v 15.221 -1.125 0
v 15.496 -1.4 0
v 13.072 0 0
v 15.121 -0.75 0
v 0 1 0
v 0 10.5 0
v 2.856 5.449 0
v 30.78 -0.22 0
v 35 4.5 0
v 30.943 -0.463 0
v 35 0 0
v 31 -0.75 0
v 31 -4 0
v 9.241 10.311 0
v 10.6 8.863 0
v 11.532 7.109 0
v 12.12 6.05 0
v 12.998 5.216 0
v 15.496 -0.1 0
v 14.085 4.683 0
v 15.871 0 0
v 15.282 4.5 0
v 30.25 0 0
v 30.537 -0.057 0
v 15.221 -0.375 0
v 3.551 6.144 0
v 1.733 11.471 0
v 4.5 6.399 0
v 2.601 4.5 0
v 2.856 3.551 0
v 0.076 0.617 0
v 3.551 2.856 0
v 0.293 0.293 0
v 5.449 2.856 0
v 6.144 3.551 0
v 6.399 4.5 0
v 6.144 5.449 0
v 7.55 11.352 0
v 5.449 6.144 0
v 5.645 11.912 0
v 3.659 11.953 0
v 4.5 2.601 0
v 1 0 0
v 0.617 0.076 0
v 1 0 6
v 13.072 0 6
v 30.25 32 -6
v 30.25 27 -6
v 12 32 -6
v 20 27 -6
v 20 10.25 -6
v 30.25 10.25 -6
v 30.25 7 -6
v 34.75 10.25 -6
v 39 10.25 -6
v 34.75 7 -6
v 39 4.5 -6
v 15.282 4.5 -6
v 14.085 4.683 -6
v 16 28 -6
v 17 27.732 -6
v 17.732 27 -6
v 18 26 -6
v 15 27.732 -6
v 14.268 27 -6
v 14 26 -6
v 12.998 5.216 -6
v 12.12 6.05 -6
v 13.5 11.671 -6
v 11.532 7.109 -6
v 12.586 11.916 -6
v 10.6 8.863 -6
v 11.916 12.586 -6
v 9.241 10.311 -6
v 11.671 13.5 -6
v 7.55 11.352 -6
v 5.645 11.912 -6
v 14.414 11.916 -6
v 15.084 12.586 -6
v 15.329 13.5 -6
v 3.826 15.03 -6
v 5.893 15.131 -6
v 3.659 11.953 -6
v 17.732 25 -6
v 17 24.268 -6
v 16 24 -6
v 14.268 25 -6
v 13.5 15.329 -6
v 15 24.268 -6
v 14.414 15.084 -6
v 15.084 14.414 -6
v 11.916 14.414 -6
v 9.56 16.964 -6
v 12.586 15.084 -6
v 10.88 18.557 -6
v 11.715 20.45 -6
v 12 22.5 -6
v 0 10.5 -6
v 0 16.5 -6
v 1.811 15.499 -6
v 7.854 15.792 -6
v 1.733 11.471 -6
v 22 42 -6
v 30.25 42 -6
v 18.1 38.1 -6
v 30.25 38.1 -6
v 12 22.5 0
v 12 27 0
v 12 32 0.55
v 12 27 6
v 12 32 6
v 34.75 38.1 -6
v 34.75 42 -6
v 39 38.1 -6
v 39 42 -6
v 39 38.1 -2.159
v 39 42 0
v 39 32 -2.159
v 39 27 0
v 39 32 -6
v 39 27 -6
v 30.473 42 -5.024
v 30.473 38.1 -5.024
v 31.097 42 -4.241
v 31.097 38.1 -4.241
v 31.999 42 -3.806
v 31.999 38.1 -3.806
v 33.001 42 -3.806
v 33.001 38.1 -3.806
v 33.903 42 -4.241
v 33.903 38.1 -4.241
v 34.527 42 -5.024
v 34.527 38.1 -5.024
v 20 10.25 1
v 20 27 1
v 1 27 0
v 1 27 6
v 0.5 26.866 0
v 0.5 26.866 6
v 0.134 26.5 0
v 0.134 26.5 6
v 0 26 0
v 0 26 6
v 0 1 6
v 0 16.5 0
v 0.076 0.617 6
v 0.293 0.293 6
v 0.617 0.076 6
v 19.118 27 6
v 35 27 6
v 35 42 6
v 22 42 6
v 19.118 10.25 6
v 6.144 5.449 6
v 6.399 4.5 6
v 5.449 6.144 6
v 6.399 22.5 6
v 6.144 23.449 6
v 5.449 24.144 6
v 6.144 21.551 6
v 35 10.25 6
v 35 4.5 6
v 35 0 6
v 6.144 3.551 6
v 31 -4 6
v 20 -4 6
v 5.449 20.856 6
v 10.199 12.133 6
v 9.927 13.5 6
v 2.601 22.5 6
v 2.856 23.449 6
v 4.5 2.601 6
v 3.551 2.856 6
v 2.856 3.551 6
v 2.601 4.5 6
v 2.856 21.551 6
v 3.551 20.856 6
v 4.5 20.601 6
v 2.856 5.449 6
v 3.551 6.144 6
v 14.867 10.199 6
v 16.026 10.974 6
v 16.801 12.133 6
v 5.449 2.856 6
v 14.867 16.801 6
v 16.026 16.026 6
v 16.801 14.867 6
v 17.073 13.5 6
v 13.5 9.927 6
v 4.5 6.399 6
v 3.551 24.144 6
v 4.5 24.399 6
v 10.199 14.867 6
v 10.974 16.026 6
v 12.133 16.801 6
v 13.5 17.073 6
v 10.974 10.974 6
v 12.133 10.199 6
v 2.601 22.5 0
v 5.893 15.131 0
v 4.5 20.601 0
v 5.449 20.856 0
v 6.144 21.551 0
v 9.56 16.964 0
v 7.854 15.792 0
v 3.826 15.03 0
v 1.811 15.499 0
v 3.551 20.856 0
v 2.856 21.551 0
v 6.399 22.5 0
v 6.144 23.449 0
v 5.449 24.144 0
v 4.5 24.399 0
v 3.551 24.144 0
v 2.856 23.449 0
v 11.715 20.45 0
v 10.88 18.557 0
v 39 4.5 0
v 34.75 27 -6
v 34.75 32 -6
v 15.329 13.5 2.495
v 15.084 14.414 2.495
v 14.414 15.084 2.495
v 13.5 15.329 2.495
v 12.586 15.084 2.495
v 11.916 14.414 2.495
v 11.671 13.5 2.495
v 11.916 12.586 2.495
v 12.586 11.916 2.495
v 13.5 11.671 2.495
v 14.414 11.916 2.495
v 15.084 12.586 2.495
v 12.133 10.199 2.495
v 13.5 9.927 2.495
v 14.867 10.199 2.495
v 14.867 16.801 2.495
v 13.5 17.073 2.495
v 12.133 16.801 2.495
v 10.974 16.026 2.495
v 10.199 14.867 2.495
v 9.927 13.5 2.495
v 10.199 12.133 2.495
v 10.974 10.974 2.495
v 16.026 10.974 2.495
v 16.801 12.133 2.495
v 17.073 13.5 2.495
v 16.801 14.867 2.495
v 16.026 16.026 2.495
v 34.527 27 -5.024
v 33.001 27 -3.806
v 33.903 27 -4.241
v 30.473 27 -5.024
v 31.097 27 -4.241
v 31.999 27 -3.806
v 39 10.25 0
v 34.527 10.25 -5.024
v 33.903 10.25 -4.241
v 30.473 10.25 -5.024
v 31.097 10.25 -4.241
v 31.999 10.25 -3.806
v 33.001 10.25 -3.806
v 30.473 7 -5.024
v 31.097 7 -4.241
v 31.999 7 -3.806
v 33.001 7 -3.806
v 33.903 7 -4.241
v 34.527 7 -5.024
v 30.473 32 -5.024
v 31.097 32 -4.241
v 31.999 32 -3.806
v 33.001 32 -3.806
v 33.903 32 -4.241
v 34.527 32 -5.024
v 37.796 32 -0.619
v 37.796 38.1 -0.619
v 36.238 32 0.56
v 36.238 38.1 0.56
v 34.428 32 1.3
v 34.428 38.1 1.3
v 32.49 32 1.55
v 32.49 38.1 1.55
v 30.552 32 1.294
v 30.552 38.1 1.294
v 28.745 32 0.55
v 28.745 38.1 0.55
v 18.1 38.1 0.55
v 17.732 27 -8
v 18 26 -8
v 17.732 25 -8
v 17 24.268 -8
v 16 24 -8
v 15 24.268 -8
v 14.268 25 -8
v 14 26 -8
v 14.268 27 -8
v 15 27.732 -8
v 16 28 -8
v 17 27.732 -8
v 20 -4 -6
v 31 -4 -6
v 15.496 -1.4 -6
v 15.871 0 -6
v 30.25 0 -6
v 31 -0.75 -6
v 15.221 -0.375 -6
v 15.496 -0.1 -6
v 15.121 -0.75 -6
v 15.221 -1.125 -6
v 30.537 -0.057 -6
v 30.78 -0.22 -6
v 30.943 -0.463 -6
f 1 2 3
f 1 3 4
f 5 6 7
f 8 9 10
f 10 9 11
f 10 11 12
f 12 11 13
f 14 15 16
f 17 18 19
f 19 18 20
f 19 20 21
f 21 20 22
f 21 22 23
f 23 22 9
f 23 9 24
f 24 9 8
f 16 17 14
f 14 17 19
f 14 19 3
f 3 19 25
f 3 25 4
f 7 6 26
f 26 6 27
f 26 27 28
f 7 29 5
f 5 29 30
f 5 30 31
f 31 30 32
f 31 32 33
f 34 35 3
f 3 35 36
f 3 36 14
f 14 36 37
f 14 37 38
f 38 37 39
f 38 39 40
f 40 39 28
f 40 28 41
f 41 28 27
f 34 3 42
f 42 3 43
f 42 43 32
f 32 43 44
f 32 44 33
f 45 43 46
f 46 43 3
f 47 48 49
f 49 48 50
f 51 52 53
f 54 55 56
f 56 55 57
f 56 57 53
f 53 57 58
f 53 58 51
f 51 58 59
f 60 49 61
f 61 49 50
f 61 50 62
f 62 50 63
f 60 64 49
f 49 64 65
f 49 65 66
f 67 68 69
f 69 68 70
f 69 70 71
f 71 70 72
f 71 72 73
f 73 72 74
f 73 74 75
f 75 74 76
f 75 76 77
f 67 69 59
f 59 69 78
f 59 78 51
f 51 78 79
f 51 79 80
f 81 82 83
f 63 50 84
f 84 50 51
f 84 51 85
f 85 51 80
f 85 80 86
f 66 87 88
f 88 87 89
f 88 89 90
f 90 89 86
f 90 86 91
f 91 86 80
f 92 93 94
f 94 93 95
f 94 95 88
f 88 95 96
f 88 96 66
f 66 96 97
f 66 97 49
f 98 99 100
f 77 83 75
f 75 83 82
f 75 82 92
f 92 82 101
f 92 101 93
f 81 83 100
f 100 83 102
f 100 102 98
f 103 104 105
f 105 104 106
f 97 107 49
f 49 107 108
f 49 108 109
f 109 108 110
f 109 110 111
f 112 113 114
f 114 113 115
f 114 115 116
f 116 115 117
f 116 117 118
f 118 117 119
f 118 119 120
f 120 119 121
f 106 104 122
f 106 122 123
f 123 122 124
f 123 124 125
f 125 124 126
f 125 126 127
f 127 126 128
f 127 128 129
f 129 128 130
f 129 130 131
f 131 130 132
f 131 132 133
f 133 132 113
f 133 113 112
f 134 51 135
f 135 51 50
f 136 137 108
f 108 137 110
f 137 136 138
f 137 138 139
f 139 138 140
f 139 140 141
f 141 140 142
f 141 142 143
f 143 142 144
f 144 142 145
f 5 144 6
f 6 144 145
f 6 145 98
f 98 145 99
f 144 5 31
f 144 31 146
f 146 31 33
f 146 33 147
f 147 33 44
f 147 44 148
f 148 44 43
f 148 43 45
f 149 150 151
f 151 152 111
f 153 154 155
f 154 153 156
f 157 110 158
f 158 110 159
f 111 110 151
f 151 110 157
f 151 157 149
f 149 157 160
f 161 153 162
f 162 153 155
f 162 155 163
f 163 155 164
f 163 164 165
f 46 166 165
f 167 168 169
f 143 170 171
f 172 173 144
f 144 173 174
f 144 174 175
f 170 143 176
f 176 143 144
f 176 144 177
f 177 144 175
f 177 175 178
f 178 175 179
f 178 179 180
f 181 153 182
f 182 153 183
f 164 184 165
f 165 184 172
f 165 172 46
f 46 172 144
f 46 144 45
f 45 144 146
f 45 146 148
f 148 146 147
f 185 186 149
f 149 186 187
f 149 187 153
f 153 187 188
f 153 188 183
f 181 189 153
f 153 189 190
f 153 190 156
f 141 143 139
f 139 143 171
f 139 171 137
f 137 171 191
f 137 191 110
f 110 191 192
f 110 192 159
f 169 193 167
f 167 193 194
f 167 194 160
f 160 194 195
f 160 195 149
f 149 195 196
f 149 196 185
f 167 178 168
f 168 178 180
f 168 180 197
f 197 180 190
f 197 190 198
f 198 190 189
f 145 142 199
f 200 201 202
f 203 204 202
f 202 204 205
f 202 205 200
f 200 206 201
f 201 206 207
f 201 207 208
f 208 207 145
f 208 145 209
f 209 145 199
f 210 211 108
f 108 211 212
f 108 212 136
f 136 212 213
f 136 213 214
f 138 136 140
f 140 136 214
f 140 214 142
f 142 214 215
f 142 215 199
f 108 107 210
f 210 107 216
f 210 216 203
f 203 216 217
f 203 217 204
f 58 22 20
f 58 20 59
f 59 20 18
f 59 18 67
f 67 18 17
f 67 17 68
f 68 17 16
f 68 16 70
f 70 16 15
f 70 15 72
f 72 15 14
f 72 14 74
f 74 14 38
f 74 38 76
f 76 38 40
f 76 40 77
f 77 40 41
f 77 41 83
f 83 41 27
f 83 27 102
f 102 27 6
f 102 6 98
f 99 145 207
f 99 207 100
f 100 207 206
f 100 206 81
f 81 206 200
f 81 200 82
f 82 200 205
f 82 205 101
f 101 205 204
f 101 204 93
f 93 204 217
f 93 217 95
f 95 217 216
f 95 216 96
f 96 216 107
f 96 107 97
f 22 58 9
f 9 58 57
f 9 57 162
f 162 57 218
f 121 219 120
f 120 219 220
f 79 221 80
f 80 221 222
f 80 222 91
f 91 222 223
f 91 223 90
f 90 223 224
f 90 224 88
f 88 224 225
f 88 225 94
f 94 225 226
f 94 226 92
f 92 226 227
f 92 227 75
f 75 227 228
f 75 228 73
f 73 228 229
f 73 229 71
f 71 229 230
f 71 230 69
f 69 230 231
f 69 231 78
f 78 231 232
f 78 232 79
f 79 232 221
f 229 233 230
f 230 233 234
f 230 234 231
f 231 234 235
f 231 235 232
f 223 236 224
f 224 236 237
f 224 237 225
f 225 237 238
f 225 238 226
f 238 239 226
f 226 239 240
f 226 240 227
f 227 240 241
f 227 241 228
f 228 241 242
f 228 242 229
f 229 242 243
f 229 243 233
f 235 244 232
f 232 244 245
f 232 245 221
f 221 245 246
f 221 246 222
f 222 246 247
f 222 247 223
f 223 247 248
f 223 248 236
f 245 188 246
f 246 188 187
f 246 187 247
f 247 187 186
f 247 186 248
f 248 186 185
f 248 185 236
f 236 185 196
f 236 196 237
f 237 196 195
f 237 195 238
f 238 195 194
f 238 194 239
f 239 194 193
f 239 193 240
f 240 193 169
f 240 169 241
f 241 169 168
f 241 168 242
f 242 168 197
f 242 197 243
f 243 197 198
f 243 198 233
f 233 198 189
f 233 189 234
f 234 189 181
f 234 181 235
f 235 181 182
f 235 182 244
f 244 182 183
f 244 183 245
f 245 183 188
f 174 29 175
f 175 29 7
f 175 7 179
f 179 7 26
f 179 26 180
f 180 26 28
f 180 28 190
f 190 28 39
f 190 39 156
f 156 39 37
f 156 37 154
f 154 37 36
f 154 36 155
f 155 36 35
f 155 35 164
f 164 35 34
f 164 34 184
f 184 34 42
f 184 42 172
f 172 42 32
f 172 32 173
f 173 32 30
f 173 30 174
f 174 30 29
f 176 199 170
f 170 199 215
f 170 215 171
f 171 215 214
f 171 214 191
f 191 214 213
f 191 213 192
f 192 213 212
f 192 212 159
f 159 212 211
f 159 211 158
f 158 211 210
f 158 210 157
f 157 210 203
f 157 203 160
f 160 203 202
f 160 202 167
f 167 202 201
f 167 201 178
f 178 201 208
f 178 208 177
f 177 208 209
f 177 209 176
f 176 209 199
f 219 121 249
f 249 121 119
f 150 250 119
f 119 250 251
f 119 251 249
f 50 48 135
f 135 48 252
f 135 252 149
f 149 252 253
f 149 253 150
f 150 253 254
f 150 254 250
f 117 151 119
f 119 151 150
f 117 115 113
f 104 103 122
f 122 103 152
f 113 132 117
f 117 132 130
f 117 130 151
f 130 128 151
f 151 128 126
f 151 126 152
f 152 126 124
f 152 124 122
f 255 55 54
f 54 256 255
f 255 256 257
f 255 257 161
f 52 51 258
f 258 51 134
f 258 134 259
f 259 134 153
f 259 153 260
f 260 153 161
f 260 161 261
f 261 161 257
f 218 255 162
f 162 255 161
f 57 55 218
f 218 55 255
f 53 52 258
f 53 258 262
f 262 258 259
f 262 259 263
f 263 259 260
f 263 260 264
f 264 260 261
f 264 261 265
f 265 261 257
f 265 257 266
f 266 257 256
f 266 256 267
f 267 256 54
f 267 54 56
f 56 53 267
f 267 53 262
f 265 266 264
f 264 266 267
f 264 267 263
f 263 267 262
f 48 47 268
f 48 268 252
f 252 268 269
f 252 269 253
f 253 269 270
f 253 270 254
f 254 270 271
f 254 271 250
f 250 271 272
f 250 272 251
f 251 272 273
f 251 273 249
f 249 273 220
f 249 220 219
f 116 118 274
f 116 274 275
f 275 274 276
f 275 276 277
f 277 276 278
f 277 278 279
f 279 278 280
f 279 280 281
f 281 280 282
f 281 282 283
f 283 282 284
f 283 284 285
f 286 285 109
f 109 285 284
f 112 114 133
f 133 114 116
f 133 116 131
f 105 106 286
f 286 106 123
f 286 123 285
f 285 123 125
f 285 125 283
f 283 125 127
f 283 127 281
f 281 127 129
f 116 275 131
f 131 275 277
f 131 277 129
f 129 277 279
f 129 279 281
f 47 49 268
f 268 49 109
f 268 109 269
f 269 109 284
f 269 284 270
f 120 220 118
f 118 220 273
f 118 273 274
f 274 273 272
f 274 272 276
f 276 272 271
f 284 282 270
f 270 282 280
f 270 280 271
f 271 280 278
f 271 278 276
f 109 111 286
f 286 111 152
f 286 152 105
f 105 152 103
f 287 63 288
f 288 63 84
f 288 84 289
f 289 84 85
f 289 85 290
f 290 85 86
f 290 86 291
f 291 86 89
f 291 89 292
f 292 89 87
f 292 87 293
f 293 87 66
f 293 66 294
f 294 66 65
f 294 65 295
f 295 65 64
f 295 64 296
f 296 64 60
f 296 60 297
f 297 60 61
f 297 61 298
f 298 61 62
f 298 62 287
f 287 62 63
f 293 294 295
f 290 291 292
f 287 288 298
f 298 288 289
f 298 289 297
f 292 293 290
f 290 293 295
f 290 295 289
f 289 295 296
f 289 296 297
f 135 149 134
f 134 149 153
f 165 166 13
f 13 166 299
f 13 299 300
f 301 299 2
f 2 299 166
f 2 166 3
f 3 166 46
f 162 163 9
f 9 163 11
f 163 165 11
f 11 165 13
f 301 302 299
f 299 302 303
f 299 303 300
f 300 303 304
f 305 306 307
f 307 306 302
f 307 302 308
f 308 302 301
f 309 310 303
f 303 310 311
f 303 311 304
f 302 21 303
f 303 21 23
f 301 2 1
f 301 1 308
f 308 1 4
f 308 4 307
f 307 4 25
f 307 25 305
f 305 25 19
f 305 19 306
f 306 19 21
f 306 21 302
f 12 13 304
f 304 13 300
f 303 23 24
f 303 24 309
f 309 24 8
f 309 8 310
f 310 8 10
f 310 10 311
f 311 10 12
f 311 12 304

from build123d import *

# Parameters (mm, degrees)
BOSS_EXTRUDE1_DEPTH                            = 6
BOSS_EXTRUDE3_DEPTH                            = 6
CBORE_FOR_6_SOCKET_HEAD_CAP_SCREW1_D           = 3.6576
CBORE_FOR_6_SOCKET_HEAD_CAP_SCREW1_CBORE_D     = 7.14502
CBORE_FOR_6_SOCKET_HEAD_CAP_SCREW1_CBORE_DEPTH = 3.5052
F_6_CLEARANCE_HOLE1_D                          = 3.7973
F_6_CLEARANCE_HOLE1_DEPTH                      = 17.47
F_6_CLEARANCE_HOLE1_TIP                        = 1.140824014
BOSS_EXTRUDE5_DEPTH                            = 15
BOSS_EXTRUDE6_DEPTH                            = 5.75
CUT_EXTRUDE1_START                             = -20
SKETCH11_5_R                                   = 2.25
CUT_EXTRUDE1_DEPTH                             = 35
CUT_EXTRUDE2_DEPTH                             = 6.1
CHAMFER2_SIZE                                  = 10
SKETCH26_R                                     = 2
BOSS_EXTRUDE10_DEPTH                           = 2
CHAMFER3_SIZE                                  = 5
CHAMFER3_SIZE2                                 = 0.881634904
BOSS_EXTRUDE7_DEPTH                            = 6
BOSS_EXTRUDE9_DEPTH                            = 6


with BuildPart() as part:
    # Sketch2 → Boss-Extrude1 (new body)
    with BuildSketch(Plane.XY):
        with BuildLine():
            Line((1, 0), (20, 0))
            Line((20, 0), (20, 27))
            Line((20, 27), (1, 27))
            ThreePointArc((1, 27), (0.292893219, 26.707106781), (0, 26))
            Line((0, 26), (0, 1))
            ThreePointArc((0, 1), (0.292893219, 0.292893219), (1, 0))
        make_face()
    extrude(amount=BOSS_EXTRUDE1_DEPTH)

    # Sketch3 → Boss-Extrude3 (add)
    with BuildSketch(Plane.XY):
        with BuildLine():
            ThreePointArc((0, 10.5), (6.616034902, 11.695303767), (11.531693039, 7.108695652))
            ThreePointArc((11.531693039, 7.108695652), (12.997768364, 5.216311724), (15.281929326, 4.5))
            Line((15.281929326, 4.5), (20, 4.5))
            Line((20, 4.5), (20, 27))
            Line((20, 27), (12, 27))
            Line((12, 27), (12, 22.5))
            ThreePointArc((12, 22.5), (7.854101966, 15.791796068), (0, 16.5))
            Line((0, 16.5), (0, 10.5))
        make_face()
    extrude(amount=-BOSS_EXTRUDE3_DEPTH)

    # CBORE for #6 Socket Head Cap Screw1 (through all)
    with Locations(Plane.XY.offset(6)):
        with Locations((13.5, 13.5)):
            CounterBoreHole(CBORE_FOR_6_SOCKET_HEAD_CAP_SCREW1_D / 2, CBORE_FOR_6_SOCKET_HEAD_CAP_SCREW1_CBORE_D / 2, CBORE_FOR_6_SOCKET_HEAD_CAP_SCREW1_CBORE_DEPTH)

    # #6 Clearance Hole1
    with Locations(Plane(origin=(0, 0, 0), x_dir=(-1, 0, 0), z_dir=(0, 0, -1))):
        with Locations((-4.5, 22.5), (-4.5, 4.5)):
            Hole(F_6_CLEARANCE_HOLE1_D / 2, depth=F_6_CLEARANCE_HOLE1_DEPTH)
            with Locations((0, 0, -(F_6_CLEARANCE_HOLE1_DEPTH + F_6_CLEARANCE_HOLE1_TIP / 2))):  # 118° drill point
                Cone(0, F_6_CLEARANCE_HOLE1_D / 2, F_6_CLEARANCE_HOLE1_TIP, mode=Mode.SUBTRACT)

    # Sketch11 → Boss-Extrude5 (add)
    with BuildSketch(Plane(origin=(0, 27, 0), x_dir=(1, 0, 0), z_dir=(0, 1, 0))):
        Polygon((12, 6), (12, -6), (35, -6), (39, 0), (39, 6), align=None)
    extrude(amount=BOSS_EXTRUDE5_DEPTH)

    # Sketch13 → Boss-Extrude6 (add)
    with BuildSketch(Plane(origin=(0, 10.25, 0), x_dir=(-1, 0, 0), z_dir=(0, -1, 0))):
        Polygon((-20, 6), (-39, 6), (-39, 0), (-35, -6), (-20, -6), align=None)
    extrude(amount=BOSS_EXTRUDE6_DEPTH)

    # Sketch11<5> → Cut-Extrude1 (cut)
    with BuildSketch(Plane(origin=(0, 27, 0), x_dir=(1, 0, 0), z_dir=(0, 1, 0)).offset(CUT_EXTRUDE1_START)):
        with Locations((32.5, 6)):
            Circle(SKETCH11_5_R)
    extrude(amount=CUT_EXTRUDE1_DEPTH, mode=Mode.SUBTRACT)

    # Sketch14 → Cut-Extrude2 (cut)
    with BuildSketch(Plane(origin=(0, 32, 0), x_dir=(-1, 0, 0), z_dir=(0, -1, 0))):
        with BuildLine():
            Line((-29.85, 12.55), (-29.85, -0.55))
            Line((-29.85, -0.55), (-28.547785431, -0.55))
            ThreePointArc((-28.547785431, -0.55), (-25.8382832, 2.239145141), (-24.85, 6))
            ThreePointArc((-24.85, 6), (-25.8382832, 9.760854859), (-28.547785431, 12.55))
            Line((-28.547785431, 12.55), (-29.85, 12.55))
        make_face()
        with BuildLine():
            Line((-28.547785431, -0.55), (-29.85, -0.55))
            Line((-29.85, -0.55), (-29.85, 12.55))
            Line((-29.85, 12.55), (-28.547785431, 12.55))
            ThreePointArc((-28.547785431, 12.55), (-40.15, 6), (-28.547785431, -0.55))
        make_face()
        with BuildLine():
            ThreePointArc((-24.85, 6), (-25.8382832, 2.239145141), (-28.547785431, -0.55))
            Line((-28.547785431, -0.55), (-24.85, -0.55))
            Line((-24.85, -0.55), (-24.85, 6))
        make_face()
        Polygon((-24.85, 6), (-24.85, -0.55), (-9.85, -0.55), (-9.85, 12.55), (-24.85, 12.55), align=None)
        with BuildLine():
            Line((-24.85, 12.55), (-28.547785431, 12.55))
            ThreePointArc((-28.547785431, 12.55), (-25.8382832, 9.760854859), (-24.85, 6))
            Line((-24.85, 6), (-24.85, 12.55))
        make_face()
    extrude(amount=-CUT_EXTRUDE2_DEPTH, mode=Mode.SUBTRACT)

    # Chamfer2
    chamfer2_edges = [part.edges().sort_by_distance(p)[0] for p in [
        (12, 42, 0),
    ]]
    chamfer(chamfer2_edges, length=CHAMFER2_SIZE)

    # Sketch26 → Boss-Extrude10 (add)
    with BuildSketch(Plane(origin=(0, 0, -6), x_dir=(-1, 0, 0), z_dir=(0, 0, -1))):
        with Locations((-16, 26)):
            Circle(SKETCH26_R)
    extrude(amount=BOSS_EXTRUDE10_DEPTH)

    # Chamfer3
    chamfer3_edges = [part.edges().sort_by_distance(p)[0] for p in [
        (20, 18.625, 6),
    ]]
    chamfer3_side = [part.faces().sort_by_distance(p)[0] for p in [
        (20, 18.625, 0),
    ]]
    chamfer(chamfer3_edges, length=CHAMFER3_SIZE, length2=CHAMFER3_SIZE2, reference=chamfer3_side[0])

    # Sketch15 → Boss-Extrude7 (add)
    with BuildSketch(Plane.XY.offset(6)):
        Polygon((20, 4.5), (20, 0), (13.07179677, 0), (20, -4), (31, -4), (35, 0), (35, 4.5), align=None)
    extrude(amount=-BOSS_EXTRUDE7_DEPTH)

    # Sketch17 → Boss-Extrude9 (add)
    with BuildSketch(Plane(origin=(0, 0, 0), x_dir=(-1, 0, 0), z_dir=(0, 0, -1))):
        with BuildLine():
            Line((-30.25, 0), (-15.870834875, 0))
            ThreePointArc((-15.870834875, 0), (-15.146390506, -0.555885716), (-15.495834875, -1.399519053))
            Line((-15.495834875, -1.399519053), (-20, -4))
            Line((-20, -4), (-31, -4))
            Line((-31, -4), (-31, -0.75))
            ThreePointArc((-31, -0.75), (-30.780330086, -0.219669914), (-30.25, 0))
        make_face()
    extrude(amount=BOSS_EXTRUDE9_DEPTH)


solid = part.part
